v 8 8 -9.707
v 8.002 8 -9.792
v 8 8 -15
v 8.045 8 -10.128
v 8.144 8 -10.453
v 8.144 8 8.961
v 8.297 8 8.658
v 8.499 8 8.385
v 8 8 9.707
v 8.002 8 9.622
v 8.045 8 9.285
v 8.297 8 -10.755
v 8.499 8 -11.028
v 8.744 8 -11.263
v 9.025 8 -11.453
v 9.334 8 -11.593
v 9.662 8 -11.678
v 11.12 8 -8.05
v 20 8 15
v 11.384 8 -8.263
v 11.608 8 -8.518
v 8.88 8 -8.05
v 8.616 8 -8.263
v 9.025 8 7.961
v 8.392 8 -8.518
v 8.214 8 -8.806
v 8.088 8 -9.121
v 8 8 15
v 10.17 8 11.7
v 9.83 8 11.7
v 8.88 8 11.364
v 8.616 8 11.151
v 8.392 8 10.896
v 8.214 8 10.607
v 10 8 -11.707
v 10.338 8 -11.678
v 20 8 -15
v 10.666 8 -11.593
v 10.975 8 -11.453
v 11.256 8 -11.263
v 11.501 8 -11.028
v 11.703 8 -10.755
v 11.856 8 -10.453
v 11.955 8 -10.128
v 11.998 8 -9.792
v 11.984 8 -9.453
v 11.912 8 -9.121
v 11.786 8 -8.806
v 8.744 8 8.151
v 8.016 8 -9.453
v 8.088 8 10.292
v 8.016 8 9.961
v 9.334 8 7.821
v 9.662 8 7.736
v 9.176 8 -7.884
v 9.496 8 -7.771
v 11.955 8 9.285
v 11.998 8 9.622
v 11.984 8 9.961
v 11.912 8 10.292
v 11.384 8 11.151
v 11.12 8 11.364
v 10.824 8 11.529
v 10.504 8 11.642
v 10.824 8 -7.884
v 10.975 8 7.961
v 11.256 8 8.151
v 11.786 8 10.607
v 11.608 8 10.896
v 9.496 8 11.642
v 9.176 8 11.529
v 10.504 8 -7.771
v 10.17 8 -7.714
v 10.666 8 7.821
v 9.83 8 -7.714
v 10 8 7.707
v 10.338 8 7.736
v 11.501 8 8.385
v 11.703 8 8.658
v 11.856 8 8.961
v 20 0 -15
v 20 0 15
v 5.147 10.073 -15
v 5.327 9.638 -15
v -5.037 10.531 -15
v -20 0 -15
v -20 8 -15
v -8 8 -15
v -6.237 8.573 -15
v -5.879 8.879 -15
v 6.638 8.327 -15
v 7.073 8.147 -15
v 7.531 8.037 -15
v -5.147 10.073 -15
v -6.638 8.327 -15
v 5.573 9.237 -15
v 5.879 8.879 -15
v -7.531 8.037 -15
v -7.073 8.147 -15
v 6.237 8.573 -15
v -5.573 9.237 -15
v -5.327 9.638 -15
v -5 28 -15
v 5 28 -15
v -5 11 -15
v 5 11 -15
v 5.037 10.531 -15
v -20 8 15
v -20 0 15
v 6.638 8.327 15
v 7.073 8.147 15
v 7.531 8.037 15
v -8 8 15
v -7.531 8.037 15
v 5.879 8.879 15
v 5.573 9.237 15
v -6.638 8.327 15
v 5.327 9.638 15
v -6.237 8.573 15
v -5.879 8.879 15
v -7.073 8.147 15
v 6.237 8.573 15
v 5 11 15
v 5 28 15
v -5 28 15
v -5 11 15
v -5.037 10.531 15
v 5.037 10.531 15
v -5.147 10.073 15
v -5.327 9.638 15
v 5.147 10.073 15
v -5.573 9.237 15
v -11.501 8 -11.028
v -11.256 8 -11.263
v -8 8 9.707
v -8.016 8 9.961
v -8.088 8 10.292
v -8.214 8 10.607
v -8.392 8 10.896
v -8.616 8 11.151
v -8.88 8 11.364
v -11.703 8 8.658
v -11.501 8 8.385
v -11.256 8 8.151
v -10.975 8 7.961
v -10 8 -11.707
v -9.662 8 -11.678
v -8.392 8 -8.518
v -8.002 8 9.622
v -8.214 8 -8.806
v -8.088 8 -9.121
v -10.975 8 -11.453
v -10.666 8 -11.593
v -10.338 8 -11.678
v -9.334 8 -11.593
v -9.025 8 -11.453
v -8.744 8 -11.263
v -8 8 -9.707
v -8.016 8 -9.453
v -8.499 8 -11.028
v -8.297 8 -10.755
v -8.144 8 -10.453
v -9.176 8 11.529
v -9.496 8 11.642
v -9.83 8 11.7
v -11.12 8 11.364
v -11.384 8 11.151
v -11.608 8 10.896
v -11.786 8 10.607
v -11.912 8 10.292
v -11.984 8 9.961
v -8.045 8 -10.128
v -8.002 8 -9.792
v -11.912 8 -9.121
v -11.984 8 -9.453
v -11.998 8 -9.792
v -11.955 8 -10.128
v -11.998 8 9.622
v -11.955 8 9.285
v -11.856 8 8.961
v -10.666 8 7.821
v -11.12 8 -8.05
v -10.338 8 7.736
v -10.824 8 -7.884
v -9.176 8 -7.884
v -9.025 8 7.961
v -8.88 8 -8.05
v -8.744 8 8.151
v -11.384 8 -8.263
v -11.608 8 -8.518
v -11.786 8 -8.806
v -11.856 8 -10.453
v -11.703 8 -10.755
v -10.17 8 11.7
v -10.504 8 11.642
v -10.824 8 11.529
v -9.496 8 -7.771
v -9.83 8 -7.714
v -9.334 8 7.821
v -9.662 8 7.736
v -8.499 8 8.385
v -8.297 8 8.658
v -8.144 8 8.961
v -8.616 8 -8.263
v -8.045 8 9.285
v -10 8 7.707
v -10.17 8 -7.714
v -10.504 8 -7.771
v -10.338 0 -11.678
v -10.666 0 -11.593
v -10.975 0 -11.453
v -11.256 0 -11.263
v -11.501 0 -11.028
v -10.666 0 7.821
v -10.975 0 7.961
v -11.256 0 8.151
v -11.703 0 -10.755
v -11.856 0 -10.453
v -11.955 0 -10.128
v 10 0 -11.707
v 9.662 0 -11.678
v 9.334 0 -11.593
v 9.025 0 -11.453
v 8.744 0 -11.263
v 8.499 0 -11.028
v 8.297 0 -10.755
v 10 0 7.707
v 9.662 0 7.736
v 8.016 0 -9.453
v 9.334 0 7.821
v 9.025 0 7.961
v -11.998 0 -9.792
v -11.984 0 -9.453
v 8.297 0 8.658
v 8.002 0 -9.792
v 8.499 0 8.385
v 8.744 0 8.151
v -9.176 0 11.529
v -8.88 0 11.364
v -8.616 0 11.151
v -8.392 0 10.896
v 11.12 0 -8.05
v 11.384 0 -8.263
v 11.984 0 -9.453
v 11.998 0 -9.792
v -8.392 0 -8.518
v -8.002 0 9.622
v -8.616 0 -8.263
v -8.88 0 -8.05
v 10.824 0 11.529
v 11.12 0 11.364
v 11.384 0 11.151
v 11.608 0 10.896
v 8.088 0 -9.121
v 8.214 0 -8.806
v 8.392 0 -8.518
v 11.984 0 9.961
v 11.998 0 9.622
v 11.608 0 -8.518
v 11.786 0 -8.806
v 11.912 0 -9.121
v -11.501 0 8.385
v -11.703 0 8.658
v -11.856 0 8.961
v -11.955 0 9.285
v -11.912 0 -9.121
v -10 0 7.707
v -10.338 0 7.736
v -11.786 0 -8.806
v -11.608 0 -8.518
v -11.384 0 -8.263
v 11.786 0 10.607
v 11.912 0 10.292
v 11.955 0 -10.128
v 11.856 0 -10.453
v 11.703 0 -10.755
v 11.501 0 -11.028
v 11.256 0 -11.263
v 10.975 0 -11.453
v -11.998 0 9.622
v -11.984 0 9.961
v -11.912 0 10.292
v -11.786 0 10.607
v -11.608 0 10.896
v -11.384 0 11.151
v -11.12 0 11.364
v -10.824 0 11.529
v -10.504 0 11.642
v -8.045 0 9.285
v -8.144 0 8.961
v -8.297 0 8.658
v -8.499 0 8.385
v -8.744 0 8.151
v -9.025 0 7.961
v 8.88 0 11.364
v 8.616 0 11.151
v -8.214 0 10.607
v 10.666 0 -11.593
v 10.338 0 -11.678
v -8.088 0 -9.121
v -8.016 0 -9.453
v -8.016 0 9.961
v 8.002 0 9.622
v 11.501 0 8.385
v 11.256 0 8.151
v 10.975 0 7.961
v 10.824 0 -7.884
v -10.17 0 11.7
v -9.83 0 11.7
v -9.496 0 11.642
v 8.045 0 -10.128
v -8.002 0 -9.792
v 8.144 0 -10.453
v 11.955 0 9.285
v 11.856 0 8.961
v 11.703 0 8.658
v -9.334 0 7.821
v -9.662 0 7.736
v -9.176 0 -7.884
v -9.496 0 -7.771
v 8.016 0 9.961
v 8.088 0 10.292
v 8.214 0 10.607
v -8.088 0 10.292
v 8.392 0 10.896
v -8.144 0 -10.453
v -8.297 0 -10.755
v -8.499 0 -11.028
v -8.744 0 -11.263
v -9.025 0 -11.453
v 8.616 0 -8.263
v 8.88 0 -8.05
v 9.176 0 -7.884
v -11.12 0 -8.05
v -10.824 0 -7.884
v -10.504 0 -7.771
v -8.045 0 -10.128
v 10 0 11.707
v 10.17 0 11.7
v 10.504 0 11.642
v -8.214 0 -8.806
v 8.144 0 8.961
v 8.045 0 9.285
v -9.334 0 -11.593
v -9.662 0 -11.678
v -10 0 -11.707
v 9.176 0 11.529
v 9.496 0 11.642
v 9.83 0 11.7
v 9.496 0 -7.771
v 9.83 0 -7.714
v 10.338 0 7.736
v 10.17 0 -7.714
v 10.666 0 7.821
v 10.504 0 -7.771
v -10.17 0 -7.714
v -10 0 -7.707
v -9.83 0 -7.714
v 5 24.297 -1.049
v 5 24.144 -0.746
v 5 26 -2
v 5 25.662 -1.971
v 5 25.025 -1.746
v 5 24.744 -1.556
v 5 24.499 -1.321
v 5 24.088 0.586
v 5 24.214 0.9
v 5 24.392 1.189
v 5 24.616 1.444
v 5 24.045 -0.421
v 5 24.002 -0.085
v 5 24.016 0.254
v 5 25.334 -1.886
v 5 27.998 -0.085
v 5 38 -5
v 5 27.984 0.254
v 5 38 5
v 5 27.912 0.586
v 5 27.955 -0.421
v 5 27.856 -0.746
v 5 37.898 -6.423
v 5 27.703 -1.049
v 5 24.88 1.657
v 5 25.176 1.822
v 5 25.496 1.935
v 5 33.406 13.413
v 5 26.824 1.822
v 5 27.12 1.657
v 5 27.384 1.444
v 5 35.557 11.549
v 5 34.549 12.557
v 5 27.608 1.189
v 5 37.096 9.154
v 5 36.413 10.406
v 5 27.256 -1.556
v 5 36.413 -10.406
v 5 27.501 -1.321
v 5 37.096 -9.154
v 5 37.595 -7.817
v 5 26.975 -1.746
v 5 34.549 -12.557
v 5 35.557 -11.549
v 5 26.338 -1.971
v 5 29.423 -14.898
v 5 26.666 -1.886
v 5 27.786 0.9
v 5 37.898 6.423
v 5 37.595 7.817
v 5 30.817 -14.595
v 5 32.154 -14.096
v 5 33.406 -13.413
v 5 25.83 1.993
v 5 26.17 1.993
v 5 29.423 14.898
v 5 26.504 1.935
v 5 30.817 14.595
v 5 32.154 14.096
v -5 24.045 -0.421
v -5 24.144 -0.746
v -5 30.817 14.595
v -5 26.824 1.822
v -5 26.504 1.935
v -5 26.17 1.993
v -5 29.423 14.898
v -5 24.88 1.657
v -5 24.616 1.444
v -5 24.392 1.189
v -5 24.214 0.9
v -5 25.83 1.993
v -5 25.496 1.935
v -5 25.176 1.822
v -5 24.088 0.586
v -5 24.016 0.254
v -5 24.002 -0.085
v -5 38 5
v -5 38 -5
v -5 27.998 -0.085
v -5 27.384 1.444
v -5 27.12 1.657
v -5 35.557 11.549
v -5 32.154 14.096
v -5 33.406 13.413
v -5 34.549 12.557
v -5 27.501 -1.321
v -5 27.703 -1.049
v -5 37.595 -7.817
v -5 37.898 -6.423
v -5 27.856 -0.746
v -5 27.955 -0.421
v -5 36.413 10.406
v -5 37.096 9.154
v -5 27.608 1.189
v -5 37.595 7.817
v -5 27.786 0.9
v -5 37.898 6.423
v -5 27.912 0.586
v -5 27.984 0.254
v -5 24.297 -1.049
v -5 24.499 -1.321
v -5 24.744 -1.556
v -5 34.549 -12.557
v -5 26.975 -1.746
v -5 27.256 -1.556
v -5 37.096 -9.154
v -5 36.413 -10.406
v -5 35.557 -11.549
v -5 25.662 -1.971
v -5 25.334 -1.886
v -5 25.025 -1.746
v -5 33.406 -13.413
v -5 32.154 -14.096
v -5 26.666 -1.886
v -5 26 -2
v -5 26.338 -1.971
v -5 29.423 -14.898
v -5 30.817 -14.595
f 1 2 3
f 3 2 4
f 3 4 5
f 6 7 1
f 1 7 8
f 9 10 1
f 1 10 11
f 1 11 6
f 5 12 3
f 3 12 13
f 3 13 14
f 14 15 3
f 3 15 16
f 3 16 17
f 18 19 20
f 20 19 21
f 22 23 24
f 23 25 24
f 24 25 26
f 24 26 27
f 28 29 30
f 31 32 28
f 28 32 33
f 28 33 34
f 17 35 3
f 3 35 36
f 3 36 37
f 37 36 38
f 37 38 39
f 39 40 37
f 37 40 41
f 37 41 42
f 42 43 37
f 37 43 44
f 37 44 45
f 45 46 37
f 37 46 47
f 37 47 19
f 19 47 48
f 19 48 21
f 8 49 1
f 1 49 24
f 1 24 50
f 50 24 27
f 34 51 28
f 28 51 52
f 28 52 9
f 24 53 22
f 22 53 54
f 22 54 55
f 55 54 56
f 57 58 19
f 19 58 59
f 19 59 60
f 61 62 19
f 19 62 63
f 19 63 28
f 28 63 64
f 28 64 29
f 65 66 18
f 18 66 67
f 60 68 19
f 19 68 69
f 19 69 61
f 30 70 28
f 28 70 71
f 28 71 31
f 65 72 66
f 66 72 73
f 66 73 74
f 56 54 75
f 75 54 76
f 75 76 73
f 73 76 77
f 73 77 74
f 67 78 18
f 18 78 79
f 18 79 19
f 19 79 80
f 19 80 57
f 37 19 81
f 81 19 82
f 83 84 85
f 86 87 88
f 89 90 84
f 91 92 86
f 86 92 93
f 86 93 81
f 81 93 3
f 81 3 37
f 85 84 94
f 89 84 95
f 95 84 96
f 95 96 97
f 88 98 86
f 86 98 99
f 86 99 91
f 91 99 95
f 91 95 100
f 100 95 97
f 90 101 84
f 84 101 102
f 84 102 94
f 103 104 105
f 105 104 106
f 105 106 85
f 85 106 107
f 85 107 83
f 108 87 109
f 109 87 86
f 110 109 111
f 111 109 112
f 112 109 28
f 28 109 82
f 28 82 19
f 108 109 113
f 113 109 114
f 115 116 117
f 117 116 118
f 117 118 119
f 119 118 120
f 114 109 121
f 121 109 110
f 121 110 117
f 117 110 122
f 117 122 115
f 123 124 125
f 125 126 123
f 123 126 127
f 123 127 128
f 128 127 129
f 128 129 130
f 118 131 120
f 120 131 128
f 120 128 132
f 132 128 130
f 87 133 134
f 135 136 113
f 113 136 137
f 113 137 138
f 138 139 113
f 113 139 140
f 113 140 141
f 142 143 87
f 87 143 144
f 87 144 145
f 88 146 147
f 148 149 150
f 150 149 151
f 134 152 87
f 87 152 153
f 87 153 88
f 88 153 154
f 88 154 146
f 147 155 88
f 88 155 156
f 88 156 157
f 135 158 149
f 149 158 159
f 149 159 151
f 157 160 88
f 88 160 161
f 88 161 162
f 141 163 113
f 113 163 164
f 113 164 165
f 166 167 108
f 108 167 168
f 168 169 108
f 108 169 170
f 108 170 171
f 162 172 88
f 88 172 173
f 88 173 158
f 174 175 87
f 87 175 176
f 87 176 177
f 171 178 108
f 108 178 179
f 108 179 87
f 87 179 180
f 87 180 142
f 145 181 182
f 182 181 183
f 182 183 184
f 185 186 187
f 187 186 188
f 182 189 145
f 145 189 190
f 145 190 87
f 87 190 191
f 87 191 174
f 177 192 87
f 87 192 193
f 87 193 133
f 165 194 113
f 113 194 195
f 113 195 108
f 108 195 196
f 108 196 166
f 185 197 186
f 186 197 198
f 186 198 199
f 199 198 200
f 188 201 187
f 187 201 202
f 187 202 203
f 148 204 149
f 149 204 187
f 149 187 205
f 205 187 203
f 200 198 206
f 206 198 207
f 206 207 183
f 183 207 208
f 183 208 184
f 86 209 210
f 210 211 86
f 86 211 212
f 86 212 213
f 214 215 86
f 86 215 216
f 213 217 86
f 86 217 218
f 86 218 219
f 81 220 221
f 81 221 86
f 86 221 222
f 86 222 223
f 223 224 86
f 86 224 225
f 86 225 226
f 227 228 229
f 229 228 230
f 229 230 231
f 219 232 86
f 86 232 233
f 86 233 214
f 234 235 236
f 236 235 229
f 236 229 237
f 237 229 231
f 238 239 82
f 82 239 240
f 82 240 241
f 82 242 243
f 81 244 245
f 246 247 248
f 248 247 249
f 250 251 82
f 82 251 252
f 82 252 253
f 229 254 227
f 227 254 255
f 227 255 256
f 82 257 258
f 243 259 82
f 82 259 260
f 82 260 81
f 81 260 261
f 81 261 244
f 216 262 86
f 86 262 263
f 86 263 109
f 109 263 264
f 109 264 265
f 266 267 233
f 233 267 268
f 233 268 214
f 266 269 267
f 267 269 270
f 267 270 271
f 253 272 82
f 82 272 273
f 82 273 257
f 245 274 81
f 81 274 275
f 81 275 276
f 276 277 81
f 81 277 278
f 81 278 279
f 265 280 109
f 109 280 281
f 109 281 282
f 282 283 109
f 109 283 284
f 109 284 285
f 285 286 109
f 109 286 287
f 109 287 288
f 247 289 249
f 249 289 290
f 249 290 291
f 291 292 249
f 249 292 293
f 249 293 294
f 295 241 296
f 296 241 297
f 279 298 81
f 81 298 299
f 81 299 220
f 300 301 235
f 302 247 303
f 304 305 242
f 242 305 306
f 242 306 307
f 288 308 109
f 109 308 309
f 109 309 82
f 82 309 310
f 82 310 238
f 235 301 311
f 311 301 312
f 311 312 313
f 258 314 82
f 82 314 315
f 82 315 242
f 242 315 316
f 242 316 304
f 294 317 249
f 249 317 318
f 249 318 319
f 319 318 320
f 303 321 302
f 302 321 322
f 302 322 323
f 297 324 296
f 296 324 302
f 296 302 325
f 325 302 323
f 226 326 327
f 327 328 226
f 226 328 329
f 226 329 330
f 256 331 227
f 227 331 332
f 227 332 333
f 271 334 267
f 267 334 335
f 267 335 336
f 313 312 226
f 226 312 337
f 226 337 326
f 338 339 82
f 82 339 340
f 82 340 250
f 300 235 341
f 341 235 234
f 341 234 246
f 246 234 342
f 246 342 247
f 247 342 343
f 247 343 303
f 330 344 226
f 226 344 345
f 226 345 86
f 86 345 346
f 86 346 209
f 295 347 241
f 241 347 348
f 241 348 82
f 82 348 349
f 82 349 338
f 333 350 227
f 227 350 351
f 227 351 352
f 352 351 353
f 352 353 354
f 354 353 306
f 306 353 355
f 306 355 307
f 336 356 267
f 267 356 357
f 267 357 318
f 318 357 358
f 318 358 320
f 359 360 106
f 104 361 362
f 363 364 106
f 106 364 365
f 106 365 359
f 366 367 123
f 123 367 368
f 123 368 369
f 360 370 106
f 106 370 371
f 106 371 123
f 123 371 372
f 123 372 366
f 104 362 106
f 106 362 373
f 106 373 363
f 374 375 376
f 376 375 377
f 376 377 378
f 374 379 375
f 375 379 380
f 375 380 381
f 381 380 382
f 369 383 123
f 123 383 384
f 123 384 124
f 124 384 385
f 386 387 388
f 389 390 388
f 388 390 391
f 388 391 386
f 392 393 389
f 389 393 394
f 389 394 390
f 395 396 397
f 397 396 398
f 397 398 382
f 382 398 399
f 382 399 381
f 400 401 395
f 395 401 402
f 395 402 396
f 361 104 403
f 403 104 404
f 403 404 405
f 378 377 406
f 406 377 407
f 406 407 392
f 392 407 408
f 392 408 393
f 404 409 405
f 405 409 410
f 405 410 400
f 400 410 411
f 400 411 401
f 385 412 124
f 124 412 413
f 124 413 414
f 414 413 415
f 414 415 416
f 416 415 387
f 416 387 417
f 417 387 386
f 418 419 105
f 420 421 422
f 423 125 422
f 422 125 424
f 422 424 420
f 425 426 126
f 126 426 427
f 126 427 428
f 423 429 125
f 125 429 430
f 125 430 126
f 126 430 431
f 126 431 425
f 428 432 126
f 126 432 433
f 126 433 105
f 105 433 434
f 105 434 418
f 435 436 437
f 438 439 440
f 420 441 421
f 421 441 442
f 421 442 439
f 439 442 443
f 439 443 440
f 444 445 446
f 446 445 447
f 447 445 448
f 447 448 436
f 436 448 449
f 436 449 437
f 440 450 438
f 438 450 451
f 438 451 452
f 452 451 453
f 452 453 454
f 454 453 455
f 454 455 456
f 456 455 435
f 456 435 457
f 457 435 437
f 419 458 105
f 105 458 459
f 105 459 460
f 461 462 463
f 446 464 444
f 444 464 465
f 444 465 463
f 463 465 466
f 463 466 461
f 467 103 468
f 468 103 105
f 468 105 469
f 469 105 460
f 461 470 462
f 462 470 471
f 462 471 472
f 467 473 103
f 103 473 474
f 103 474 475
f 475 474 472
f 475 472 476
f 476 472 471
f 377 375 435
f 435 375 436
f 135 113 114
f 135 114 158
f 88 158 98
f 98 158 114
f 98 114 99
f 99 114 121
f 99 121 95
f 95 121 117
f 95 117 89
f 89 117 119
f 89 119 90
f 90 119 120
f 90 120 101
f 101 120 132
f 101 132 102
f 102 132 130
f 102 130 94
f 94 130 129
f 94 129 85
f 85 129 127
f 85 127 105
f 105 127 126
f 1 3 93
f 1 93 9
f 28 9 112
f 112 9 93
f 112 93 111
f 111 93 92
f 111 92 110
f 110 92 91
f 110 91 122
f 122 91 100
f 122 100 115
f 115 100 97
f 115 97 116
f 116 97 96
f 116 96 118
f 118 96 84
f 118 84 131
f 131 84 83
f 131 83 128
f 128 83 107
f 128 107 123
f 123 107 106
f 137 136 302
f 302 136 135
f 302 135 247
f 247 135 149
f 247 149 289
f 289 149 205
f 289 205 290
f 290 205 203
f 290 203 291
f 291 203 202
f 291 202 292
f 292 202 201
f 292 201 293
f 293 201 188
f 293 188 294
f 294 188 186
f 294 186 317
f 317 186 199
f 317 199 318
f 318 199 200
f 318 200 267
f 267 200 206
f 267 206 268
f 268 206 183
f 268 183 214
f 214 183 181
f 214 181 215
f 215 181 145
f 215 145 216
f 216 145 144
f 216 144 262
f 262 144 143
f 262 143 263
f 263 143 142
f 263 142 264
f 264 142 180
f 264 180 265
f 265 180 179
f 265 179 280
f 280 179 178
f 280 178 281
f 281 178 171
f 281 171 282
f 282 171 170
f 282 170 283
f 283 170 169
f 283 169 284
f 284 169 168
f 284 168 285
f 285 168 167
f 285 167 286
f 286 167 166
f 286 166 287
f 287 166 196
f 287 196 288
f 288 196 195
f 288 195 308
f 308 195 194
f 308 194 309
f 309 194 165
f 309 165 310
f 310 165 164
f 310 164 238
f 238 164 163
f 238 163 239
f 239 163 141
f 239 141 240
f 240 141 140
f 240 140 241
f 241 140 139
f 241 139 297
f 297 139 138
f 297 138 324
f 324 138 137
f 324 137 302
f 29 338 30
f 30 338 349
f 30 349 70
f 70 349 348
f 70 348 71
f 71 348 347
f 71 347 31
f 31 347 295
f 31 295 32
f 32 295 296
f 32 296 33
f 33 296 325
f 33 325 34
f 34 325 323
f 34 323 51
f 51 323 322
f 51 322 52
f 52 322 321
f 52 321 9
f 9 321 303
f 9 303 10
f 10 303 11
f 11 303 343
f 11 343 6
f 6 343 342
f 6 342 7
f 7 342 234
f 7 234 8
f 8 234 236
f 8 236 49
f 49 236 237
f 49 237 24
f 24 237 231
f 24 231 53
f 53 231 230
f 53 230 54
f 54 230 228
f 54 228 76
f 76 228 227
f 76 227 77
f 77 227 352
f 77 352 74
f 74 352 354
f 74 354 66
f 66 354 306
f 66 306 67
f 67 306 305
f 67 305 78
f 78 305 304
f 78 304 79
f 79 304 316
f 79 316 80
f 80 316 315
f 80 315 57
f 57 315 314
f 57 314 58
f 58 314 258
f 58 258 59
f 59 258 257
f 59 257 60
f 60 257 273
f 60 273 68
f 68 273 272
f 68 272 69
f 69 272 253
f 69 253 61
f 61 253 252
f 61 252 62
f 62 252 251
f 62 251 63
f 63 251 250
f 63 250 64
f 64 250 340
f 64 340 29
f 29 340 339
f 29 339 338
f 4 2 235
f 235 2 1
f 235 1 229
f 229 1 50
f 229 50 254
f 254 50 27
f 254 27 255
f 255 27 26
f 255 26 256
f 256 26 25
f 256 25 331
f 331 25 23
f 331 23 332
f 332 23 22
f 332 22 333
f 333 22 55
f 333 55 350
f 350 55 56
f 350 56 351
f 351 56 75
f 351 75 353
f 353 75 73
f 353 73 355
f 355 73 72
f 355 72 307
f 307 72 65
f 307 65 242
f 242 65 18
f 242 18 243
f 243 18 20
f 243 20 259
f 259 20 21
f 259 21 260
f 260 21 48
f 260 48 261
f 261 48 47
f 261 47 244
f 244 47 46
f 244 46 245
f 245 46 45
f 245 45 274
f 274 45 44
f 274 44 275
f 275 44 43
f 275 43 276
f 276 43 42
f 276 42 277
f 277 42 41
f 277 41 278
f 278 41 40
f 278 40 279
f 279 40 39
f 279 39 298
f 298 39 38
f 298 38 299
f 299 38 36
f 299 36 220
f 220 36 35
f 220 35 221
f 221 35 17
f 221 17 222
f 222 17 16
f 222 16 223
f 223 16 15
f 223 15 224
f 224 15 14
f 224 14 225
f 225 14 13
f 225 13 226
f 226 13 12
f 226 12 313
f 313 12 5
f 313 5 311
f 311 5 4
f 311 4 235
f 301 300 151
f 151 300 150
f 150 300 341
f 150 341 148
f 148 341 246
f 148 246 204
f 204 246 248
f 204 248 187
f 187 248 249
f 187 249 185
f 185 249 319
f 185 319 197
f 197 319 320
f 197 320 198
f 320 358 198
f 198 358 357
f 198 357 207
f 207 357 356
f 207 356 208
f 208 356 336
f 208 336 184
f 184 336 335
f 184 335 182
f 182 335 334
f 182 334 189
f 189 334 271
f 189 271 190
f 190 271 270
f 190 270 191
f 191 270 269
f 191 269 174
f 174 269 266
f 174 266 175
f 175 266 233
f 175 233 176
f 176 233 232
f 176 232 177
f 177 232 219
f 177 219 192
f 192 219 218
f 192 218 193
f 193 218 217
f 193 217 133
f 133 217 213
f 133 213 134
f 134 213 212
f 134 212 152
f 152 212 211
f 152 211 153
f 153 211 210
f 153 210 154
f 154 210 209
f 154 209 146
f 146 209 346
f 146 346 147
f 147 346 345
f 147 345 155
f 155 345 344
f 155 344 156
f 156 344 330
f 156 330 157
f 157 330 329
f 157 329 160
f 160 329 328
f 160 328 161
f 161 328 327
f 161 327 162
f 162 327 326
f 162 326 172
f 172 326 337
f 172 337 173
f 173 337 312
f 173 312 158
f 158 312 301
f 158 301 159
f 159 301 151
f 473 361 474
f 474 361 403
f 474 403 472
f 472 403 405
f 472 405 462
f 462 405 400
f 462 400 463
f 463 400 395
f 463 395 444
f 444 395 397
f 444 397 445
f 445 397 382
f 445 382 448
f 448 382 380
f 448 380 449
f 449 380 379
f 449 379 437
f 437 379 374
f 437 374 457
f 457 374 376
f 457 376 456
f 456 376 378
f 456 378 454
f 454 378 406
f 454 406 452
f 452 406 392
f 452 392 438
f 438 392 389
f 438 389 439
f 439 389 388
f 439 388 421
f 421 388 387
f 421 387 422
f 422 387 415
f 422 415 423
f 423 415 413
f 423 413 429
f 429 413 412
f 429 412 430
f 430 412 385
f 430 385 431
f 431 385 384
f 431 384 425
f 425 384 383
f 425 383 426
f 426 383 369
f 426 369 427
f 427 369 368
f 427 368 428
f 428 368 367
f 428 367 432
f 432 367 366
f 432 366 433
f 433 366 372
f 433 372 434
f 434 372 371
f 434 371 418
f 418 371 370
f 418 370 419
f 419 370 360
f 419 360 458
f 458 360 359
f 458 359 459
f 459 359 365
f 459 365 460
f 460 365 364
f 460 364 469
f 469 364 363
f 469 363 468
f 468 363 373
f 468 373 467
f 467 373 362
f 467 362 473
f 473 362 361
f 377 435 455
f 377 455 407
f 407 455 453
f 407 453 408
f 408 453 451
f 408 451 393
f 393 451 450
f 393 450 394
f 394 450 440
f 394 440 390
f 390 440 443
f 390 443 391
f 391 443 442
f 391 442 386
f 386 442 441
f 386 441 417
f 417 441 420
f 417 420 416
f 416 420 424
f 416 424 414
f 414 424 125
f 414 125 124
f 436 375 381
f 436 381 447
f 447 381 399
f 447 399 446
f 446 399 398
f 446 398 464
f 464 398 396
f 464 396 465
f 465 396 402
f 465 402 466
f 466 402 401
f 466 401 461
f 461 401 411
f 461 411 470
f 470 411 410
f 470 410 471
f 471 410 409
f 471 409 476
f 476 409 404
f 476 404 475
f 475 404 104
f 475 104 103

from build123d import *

# Parameters (mm, degrees)
SKETCH1_W           = 40
SKETCH1_H           = 30
BOSS_EXTRUDE1_DEPTH = 8
SKETCH2_W           = 10
SKETCH2_H           = 30
BOSS_EXTRUDE2_DEPTH = 30
FILLET2_R           = 3
SKETCH3_R           = 2
CUT_EXTRUDE1_DEPTH  = 30
SKETCH4_R           = 2
CUT_EXTRUDE2_DEPTH  = 10
FILLET3_R           = 10


with BuildPart() as part:
    # Sketch1 → Boss-Extrude1 (new body)
    with BuildSketch(Plane(origin=(0, 0, 0), x_dir=(1, 0, 0), z_dir=(0, 1, 0))):
        Rectangle(SKETCH1_W, SKETCH1_H)
    extrude(amount=BOSS_EXTRUDE1_DEPTH)

    # Sketch2 → Boss-Extrude2 (add)
    with BuildSketch(Plane(origin=(0, 8, 0), x_dir=(1, 0, 0), z_dir=(0, 1, 0))):
        Rectangle(SKETCH2_W, SKETCH2_H)
    extrude(amount=BOSS_EXTRUDE2_DEPTH)

    # Fillet2
    fillet2_edges = [part.edges().sort_by_distance(p)[0] for p in [
        (5, 8, 0),
        (-5, 8, 0),
    ]]
    fillet(fillet2_edges, radius=FILLET2_R)

    # Sketch3 → Cut-Extrude1 (cut)
    with BuildSketch(Plane.XZ):
        with Locations(Location((-10, 9.706832571, 0), (0, 0, 270))):
            Circle(SKETCH3_R)
        with Locations(Location((10, 9.706832571, 0), (0, 0, 180))):
            Circle(SKETCH3_R)
        with Locations(Location((10, -9.706832571, 0), (0, 0, 270))):
            Circle(SKETCH3_R)
        with Locations((-10, -9.706832571)):
            Circle(SKETCH3_R)
    extrude(amount=-CUT_EXTRUDE1_DEPTH, mode=Mode.SUBTRACT)

    # Sketch4 → Cut-Extrude2 (cut)
    with BuildSketch(Plane(origin=(5, 0, 0), x_dir=(0, 0, -1), z_dir=(1, 0, 0))):
        with Locations((0, 26)):
            Circle(SKETCH4_R)
    extrude(amount=-CUT_EXTRUDE2_DEPTH, mode=Mode.SUBTRACT)

    # Fillet3
    fillet3_edges = [part.edges().sort_by_distance(p)[0] for p in [
        (0, 38, -15),
        (0, 38, 15),
    ]]
    fillet(fillet3_edges, radius=FILLET3_R)


solid = part.part
